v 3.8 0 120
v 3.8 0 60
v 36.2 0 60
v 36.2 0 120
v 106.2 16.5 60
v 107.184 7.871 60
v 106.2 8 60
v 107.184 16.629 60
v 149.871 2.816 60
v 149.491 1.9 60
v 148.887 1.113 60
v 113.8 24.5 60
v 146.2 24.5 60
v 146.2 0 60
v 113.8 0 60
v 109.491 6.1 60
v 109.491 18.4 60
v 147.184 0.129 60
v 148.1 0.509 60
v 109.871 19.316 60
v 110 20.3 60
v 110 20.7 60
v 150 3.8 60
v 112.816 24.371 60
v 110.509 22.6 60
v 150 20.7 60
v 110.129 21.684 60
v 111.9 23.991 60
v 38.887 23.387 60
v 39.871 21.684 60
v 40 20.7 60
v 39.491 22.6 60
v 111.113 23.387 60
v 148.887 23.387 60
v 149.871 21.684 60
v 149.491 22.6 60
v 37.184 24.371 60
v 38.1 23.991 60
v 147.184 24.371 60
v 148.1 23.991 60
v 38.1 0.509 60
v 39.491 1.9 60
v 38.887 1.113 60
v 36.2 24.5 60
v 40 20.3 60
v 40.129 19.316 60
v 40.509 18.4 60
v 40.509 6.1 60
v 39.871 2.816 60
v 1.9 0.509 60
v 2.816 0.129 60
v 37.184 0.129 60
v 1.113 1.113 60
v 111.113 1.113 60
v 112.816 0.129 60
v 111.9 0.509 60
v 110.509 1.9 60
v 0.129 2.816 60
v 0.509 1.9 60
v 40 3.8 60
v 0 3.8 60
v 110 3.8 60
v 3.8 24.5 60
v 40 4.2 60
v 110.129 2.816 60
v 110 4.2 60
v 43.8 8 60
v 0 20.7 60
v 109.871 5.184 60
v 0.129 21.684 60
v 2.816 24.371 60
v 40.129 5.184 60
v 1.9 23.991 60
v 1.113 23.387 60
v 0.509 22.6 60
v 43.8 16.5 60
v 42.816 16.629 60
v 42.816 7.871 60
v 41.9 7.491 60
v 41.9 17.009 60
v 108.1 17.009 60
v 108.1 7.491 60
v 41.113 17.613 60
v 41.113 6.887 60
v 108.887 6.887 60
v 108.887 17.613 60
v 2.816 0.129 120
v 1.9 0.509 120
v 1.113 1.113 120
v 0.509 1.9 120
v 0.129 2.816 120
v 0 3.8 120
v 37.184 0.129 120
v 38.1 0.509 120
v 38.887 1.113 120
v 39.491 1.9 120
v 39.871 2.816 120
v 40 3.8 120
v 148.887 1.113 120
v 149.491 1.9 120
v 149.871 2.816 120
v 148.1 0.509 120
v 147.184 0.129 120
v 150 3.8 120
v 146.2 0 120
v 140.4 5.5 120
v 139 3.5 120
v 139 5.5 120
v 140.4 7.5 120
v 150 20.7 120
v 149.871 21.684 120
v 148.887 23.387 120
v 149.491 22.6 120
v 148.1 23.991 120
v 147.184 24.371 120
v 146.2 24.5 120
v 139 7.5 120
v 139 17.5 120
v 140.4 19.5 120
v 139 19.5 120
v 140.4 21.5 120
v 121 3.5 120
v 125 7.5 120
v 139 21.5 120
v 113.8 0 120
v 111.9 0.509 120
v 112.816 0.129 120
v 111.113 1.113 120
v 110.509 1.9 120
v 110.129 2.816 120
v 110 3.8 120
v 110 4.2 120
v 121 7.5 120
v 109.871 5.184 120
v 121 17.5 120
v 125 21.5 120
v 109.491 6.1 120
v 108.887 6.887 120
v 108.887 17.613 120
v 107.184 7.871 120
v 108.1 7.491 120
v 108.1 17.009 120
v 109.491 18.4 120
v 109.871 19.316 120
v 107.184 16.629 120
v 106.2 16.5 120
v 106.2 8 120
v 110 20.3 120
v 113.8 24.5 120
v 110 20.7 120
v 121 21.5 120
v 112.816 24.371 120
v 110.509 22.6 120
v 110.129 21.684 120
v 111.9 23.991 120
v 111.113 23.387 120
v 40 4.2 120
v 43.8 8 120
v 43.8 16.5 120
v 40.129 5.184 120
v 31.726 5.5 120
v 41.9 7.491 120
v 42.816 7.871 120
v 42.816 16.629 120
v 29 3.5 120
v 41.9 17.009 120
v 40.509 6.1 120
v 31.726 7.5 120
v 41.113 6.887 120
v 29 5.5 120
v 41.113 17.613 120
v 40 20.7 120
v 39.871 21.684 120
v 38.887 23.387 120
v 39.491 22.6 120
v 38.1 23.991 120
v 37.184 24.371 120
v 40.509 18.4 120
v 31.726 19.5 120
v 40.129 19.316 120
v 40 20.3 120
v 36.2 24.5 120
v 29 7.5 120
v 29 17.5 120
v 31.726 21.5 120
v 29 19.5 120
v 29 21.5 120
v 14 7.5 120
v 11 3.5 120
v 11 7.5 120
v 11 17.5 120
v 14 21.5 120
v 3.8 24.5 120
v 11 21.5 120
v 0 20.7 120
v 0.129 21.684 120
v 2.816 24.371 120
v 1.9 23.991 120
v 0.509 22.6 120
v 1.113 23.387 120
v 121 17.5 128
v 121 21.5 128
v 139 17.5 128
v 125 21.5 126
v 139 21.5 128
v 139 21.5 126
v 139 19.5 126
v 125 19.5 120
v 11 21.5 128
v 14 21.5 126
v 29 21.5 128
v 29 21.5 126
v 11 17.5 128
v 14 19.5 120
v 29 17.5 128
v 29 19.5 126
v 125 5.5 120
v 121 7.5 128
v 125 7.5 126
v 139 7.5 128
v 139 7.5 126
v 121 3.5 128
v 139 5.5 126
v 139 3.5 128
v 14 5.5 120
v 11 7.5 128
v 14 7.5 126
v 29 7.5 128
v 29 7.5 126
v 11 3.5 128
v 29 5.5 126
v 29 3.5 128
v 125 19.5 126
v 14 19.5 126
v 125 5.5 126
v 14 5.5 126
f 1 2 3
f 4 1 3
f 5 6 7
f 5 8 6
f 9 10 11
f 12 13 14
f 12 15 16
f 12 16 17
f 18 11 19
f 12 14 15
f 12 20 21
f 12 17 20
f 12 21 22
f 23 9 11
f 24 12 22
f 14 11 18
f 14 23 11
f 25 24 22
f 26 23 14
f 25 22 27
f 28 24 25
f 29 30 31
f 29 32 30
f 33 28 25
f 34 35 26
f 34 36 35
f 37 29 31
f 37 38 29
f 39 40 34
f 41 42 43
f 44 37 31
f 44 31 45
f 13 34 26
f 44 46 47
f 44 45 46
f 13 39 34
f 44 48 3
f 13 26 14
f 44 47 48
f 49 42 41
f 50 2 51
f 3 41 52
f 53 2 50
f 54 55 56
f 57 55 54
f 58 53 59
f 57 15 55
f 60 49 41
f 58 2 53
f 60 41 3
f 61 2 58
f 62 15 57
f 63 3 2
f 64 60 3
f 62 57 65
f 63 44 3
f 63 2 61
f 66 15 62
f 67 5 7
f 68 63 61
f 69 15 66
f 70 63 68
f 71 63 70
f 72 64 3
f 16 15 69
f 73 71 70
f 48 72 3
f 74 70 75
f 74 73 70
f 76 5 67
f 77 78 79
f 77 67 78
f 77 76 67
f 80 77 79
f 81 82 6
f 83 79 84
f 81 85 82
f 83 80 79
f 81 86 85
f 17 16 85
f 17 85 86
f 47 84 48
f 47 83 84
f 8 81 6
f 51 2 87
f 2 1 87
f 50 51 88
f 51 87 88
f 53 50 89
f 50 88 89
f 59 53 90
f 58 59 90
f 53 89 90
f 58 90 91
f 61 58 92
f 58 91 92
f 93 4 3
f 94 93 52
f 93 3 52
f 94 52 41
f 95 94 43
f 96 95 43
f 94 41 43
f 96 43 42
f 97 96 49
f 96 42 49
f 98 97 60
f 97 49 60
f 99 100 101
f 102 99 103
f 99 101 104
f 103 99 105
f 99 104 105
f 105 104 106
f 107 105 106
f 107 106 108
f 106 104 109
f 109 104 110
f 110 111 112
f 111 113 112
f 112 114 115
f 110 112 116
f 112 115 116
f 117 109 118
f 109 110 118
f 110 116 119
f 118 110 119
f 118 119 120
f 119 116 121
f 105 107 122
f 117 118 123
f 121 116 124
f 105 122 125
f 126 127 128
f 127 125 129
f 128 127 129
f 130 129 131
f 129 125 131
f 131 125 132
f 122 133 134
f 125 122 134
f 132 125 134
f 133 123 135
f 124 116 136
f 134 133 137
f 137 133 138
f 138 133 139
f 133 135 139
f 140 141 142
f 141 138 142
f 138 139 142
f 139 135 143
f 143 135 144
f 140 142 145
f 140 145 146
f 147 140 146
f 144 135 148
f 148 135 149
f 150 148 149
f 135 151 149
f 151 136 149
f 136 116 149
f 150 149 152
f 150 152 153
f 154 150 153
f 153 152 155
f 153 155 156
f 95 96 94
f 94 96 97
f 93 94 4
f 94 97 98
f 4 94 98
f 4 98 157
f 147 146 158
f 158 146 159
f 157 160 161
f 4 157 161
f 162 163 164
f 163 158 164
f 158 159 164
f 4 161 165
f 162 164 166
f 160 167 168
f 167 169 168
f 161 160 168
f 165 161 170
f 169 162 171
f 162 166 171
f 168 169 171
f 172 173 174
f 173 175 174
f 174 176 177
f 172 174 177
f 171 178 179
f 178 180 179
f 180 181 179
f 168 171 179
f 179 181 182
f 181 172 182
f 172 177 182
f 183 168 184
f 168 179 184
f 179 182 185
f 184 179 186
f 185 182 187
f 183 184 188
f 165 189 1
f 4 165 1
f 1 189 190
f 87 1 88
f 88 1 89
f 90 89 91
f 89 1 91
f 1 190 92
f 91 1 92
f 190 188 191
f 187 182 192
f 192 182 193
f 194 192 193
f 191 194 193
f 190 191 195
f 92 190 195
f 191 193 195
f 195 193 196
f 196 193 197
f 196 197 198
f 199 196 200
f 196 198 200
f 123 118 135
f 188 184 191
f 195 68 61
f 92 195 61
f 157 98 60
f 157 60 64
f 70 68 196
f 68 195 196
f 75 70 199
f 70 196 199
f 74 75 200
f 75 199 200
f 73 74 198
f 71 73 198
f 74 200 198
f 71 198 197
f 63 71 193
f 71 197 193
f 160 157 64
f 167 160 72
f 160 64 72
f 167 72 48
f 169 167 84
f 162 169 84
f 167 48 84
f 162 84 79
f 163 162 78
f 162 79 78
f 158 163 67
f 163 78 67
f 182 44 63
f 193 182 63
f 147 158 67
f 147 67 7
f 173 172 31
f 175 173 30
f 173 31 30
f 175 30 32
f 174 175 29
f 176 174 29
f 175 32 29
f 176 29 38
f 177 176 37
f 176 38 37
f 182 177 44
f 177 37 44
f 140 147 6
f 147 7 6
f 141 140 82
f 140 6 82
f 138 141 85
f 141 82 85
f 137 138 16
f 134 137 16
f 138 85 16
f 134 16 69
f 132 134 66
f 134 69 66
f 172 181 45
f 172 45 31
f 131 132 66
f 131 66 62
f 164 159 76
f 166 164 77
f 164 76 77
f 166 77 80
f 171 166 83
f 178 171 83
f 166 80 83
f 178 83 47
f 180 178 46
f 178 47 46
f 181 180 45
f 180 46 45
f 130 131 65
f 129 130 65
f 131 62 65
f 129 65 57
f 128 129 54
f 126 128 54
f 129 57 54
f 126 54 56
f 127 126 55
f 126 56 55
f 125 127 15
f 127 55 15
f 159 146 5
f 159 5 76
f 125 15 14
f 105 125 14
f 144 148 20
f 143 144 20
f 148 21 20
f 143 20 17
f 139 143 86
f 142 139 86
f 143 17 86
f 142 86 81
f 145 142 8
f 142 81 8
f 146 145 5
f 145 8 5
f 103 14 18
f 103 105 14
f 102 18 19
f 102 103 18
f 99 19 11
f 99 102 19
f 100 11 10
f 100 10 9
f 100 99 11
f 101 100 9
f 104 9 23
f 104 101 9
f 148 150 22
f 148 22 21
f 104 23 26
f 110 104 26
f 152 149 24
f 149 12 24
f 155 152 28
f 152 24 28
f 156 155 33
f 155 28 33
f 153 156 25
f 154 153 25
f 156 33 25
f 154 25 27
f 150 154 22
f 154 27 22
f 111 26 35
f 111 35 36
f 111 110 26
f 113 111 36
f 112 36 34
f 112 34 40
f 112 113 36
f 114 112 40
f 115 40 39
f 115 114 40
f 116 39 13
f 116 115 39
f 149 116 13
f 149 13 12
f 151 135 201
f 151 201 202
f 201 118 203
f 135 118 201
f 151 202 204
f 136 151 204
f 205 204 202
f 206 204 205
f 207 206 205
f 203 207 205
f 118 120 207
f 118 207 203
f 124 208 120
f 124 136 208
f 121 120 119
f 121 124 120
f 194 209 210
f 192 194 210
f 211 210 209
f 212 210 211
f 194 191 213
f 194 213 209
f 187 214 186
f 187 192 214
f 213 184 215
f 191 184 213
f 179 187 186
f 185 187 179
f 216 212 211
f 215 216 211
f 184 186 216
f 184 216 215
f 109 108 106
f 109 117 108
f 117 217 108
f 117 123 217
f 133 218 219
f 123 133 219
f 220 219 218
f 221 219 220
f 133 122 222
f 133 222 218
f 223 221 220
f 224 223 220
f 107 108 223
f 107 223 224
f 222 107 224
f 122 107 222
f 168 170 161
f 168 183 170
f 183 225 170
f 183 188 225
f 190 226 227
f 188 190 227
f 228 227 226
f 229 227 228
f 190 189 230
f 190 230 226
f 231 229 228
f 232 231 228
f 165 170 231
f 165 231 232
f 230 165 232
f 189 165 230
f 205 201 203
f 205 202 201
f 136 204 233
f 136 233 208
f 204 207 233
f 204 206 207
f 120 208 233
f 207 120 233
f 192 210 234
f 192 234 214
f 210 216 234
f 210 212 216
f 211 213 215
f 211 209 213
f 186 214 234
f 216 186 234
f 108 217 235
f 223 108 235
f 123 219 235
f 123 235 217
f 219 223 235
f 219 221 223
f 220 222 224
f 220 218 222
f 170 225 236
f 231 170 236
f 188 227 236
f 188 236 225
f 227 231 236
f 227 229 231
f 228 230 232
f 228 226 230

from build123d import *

# Parameters (mm, degrees)
SKETCH001_W     = 150
SKETCH001_H     = 24.5
PAD_DEPTH       = 60
SKETCH_W        = 18
SKETCH_H        = 4
PAD001_DEPTH    = 8
SKETCH002_W     = 15.4
SKETCH002_H     = 6
SKETCH002_W_2   = 17.726488
POCKET_DEPTH    = 2
SKETCH003_W     = 15.4
SKETCH003_H     = 6
SKETCH003_W_2   = 17.726488
POCKET001_DEPTH = 2
SKETCH004_W     = 70
SKETCH004_H     = 8
POCKET002_DEPTH = 60.001
FILLET_R        = 3.8


with BuildPart() as part:
    # Sketch001 → Pad (new body)
    with BuildSketch(Plane.XY.offset(60)):
        with Locations((75, 12.25)):
            Rectangle(SKETCH001_W, SKETCH001_H)
    extrude(amount=PAD_DEPTH)

    # Sketch → Pad001 (new body)
    with BuildSketch(Plane.XY.offset(120)):
        with Locations((20, 5.5)):
            Rectangle(SKETCH_W, SKETCH_H)
        with Locations((20, 19.5)):
            Rectangle(SKETCH_W, SKETCH_H)
        with Locations((130, 19.5)):
            Rectangle(SKETCH_W, SKETCH_H)
        with Locations((130, 5.5)):
            Rectangle(SKETCH_W, SKETCH_H)
    extrude(amount=PAD001_DEPTH)

    # Sketch002 → Pocket (cut)
    with BuildSketch(Plane(origin=(0, 21.5, 60), x_dir=(-1, 0, 0), z_dir=(0, 1, 0))):
        with Locations((-132.7, 63)):
            Rectangle(SKETCH002_W, SKETCH002_H)
        with Locations((-22.863244, 63)):
            Rectangle(SKETCH002_W_2, SKETCH002_H)
    extrude(amount=-POCKET_DEPTH, mode=Mode.SUBTRACT)

    # Sketch003 → Pocket001 (cut)
    with BuildSketch(Plane(origin=(0, 7.5, 60), x_dir=(-1, 0, 0), z_dir=(0, 1, 0))):
        with Locations((-132.7, 63)):
            Rectangle(SKETCH003_W, SKETCH003_H)
        with Locations((-22.863244, 63)):
            Rectangle(SKETCH003_W_2, SKETCH003_H)
    extrude(amount=-POCKET001_DEPTH, mode=Mode.SUBTRACT)

    # Sketch004 → Pocket002 (cut, through all)
    with BuildSketch(Plane.XY.offset(120)):
        with Locations((75, 20.5)):
            Rectangle(SKETCH004_W, SKETCH004_H)
        with Locations((75, 4)):
            Rectangle(SKETCH004_W, SKETCH004_H)
    extrude(amount=-POCKET002_DEPTH, mode=Mode.SUBTRACT)

    # Fillet
    fillet_edges = [part.edges().sort_by_distance(p)[0] for p in [
        (150, 0, 90),
        (110, 0, 90),
        (110, 8, 90),
        (110, 16.5, 90),
        (110, 24.5, 90),
        (150, 24.5, 90),
        (0, 0, 90),
        (0, 24.5, 90),
        (40, 24.5, 90),
        (40, 0, 90),
        (40, 8, 90),
        (40, 16.5, 90),
    ]]
    fillet(fillet_edges, radius=FILLET_R)


solid = part.part
